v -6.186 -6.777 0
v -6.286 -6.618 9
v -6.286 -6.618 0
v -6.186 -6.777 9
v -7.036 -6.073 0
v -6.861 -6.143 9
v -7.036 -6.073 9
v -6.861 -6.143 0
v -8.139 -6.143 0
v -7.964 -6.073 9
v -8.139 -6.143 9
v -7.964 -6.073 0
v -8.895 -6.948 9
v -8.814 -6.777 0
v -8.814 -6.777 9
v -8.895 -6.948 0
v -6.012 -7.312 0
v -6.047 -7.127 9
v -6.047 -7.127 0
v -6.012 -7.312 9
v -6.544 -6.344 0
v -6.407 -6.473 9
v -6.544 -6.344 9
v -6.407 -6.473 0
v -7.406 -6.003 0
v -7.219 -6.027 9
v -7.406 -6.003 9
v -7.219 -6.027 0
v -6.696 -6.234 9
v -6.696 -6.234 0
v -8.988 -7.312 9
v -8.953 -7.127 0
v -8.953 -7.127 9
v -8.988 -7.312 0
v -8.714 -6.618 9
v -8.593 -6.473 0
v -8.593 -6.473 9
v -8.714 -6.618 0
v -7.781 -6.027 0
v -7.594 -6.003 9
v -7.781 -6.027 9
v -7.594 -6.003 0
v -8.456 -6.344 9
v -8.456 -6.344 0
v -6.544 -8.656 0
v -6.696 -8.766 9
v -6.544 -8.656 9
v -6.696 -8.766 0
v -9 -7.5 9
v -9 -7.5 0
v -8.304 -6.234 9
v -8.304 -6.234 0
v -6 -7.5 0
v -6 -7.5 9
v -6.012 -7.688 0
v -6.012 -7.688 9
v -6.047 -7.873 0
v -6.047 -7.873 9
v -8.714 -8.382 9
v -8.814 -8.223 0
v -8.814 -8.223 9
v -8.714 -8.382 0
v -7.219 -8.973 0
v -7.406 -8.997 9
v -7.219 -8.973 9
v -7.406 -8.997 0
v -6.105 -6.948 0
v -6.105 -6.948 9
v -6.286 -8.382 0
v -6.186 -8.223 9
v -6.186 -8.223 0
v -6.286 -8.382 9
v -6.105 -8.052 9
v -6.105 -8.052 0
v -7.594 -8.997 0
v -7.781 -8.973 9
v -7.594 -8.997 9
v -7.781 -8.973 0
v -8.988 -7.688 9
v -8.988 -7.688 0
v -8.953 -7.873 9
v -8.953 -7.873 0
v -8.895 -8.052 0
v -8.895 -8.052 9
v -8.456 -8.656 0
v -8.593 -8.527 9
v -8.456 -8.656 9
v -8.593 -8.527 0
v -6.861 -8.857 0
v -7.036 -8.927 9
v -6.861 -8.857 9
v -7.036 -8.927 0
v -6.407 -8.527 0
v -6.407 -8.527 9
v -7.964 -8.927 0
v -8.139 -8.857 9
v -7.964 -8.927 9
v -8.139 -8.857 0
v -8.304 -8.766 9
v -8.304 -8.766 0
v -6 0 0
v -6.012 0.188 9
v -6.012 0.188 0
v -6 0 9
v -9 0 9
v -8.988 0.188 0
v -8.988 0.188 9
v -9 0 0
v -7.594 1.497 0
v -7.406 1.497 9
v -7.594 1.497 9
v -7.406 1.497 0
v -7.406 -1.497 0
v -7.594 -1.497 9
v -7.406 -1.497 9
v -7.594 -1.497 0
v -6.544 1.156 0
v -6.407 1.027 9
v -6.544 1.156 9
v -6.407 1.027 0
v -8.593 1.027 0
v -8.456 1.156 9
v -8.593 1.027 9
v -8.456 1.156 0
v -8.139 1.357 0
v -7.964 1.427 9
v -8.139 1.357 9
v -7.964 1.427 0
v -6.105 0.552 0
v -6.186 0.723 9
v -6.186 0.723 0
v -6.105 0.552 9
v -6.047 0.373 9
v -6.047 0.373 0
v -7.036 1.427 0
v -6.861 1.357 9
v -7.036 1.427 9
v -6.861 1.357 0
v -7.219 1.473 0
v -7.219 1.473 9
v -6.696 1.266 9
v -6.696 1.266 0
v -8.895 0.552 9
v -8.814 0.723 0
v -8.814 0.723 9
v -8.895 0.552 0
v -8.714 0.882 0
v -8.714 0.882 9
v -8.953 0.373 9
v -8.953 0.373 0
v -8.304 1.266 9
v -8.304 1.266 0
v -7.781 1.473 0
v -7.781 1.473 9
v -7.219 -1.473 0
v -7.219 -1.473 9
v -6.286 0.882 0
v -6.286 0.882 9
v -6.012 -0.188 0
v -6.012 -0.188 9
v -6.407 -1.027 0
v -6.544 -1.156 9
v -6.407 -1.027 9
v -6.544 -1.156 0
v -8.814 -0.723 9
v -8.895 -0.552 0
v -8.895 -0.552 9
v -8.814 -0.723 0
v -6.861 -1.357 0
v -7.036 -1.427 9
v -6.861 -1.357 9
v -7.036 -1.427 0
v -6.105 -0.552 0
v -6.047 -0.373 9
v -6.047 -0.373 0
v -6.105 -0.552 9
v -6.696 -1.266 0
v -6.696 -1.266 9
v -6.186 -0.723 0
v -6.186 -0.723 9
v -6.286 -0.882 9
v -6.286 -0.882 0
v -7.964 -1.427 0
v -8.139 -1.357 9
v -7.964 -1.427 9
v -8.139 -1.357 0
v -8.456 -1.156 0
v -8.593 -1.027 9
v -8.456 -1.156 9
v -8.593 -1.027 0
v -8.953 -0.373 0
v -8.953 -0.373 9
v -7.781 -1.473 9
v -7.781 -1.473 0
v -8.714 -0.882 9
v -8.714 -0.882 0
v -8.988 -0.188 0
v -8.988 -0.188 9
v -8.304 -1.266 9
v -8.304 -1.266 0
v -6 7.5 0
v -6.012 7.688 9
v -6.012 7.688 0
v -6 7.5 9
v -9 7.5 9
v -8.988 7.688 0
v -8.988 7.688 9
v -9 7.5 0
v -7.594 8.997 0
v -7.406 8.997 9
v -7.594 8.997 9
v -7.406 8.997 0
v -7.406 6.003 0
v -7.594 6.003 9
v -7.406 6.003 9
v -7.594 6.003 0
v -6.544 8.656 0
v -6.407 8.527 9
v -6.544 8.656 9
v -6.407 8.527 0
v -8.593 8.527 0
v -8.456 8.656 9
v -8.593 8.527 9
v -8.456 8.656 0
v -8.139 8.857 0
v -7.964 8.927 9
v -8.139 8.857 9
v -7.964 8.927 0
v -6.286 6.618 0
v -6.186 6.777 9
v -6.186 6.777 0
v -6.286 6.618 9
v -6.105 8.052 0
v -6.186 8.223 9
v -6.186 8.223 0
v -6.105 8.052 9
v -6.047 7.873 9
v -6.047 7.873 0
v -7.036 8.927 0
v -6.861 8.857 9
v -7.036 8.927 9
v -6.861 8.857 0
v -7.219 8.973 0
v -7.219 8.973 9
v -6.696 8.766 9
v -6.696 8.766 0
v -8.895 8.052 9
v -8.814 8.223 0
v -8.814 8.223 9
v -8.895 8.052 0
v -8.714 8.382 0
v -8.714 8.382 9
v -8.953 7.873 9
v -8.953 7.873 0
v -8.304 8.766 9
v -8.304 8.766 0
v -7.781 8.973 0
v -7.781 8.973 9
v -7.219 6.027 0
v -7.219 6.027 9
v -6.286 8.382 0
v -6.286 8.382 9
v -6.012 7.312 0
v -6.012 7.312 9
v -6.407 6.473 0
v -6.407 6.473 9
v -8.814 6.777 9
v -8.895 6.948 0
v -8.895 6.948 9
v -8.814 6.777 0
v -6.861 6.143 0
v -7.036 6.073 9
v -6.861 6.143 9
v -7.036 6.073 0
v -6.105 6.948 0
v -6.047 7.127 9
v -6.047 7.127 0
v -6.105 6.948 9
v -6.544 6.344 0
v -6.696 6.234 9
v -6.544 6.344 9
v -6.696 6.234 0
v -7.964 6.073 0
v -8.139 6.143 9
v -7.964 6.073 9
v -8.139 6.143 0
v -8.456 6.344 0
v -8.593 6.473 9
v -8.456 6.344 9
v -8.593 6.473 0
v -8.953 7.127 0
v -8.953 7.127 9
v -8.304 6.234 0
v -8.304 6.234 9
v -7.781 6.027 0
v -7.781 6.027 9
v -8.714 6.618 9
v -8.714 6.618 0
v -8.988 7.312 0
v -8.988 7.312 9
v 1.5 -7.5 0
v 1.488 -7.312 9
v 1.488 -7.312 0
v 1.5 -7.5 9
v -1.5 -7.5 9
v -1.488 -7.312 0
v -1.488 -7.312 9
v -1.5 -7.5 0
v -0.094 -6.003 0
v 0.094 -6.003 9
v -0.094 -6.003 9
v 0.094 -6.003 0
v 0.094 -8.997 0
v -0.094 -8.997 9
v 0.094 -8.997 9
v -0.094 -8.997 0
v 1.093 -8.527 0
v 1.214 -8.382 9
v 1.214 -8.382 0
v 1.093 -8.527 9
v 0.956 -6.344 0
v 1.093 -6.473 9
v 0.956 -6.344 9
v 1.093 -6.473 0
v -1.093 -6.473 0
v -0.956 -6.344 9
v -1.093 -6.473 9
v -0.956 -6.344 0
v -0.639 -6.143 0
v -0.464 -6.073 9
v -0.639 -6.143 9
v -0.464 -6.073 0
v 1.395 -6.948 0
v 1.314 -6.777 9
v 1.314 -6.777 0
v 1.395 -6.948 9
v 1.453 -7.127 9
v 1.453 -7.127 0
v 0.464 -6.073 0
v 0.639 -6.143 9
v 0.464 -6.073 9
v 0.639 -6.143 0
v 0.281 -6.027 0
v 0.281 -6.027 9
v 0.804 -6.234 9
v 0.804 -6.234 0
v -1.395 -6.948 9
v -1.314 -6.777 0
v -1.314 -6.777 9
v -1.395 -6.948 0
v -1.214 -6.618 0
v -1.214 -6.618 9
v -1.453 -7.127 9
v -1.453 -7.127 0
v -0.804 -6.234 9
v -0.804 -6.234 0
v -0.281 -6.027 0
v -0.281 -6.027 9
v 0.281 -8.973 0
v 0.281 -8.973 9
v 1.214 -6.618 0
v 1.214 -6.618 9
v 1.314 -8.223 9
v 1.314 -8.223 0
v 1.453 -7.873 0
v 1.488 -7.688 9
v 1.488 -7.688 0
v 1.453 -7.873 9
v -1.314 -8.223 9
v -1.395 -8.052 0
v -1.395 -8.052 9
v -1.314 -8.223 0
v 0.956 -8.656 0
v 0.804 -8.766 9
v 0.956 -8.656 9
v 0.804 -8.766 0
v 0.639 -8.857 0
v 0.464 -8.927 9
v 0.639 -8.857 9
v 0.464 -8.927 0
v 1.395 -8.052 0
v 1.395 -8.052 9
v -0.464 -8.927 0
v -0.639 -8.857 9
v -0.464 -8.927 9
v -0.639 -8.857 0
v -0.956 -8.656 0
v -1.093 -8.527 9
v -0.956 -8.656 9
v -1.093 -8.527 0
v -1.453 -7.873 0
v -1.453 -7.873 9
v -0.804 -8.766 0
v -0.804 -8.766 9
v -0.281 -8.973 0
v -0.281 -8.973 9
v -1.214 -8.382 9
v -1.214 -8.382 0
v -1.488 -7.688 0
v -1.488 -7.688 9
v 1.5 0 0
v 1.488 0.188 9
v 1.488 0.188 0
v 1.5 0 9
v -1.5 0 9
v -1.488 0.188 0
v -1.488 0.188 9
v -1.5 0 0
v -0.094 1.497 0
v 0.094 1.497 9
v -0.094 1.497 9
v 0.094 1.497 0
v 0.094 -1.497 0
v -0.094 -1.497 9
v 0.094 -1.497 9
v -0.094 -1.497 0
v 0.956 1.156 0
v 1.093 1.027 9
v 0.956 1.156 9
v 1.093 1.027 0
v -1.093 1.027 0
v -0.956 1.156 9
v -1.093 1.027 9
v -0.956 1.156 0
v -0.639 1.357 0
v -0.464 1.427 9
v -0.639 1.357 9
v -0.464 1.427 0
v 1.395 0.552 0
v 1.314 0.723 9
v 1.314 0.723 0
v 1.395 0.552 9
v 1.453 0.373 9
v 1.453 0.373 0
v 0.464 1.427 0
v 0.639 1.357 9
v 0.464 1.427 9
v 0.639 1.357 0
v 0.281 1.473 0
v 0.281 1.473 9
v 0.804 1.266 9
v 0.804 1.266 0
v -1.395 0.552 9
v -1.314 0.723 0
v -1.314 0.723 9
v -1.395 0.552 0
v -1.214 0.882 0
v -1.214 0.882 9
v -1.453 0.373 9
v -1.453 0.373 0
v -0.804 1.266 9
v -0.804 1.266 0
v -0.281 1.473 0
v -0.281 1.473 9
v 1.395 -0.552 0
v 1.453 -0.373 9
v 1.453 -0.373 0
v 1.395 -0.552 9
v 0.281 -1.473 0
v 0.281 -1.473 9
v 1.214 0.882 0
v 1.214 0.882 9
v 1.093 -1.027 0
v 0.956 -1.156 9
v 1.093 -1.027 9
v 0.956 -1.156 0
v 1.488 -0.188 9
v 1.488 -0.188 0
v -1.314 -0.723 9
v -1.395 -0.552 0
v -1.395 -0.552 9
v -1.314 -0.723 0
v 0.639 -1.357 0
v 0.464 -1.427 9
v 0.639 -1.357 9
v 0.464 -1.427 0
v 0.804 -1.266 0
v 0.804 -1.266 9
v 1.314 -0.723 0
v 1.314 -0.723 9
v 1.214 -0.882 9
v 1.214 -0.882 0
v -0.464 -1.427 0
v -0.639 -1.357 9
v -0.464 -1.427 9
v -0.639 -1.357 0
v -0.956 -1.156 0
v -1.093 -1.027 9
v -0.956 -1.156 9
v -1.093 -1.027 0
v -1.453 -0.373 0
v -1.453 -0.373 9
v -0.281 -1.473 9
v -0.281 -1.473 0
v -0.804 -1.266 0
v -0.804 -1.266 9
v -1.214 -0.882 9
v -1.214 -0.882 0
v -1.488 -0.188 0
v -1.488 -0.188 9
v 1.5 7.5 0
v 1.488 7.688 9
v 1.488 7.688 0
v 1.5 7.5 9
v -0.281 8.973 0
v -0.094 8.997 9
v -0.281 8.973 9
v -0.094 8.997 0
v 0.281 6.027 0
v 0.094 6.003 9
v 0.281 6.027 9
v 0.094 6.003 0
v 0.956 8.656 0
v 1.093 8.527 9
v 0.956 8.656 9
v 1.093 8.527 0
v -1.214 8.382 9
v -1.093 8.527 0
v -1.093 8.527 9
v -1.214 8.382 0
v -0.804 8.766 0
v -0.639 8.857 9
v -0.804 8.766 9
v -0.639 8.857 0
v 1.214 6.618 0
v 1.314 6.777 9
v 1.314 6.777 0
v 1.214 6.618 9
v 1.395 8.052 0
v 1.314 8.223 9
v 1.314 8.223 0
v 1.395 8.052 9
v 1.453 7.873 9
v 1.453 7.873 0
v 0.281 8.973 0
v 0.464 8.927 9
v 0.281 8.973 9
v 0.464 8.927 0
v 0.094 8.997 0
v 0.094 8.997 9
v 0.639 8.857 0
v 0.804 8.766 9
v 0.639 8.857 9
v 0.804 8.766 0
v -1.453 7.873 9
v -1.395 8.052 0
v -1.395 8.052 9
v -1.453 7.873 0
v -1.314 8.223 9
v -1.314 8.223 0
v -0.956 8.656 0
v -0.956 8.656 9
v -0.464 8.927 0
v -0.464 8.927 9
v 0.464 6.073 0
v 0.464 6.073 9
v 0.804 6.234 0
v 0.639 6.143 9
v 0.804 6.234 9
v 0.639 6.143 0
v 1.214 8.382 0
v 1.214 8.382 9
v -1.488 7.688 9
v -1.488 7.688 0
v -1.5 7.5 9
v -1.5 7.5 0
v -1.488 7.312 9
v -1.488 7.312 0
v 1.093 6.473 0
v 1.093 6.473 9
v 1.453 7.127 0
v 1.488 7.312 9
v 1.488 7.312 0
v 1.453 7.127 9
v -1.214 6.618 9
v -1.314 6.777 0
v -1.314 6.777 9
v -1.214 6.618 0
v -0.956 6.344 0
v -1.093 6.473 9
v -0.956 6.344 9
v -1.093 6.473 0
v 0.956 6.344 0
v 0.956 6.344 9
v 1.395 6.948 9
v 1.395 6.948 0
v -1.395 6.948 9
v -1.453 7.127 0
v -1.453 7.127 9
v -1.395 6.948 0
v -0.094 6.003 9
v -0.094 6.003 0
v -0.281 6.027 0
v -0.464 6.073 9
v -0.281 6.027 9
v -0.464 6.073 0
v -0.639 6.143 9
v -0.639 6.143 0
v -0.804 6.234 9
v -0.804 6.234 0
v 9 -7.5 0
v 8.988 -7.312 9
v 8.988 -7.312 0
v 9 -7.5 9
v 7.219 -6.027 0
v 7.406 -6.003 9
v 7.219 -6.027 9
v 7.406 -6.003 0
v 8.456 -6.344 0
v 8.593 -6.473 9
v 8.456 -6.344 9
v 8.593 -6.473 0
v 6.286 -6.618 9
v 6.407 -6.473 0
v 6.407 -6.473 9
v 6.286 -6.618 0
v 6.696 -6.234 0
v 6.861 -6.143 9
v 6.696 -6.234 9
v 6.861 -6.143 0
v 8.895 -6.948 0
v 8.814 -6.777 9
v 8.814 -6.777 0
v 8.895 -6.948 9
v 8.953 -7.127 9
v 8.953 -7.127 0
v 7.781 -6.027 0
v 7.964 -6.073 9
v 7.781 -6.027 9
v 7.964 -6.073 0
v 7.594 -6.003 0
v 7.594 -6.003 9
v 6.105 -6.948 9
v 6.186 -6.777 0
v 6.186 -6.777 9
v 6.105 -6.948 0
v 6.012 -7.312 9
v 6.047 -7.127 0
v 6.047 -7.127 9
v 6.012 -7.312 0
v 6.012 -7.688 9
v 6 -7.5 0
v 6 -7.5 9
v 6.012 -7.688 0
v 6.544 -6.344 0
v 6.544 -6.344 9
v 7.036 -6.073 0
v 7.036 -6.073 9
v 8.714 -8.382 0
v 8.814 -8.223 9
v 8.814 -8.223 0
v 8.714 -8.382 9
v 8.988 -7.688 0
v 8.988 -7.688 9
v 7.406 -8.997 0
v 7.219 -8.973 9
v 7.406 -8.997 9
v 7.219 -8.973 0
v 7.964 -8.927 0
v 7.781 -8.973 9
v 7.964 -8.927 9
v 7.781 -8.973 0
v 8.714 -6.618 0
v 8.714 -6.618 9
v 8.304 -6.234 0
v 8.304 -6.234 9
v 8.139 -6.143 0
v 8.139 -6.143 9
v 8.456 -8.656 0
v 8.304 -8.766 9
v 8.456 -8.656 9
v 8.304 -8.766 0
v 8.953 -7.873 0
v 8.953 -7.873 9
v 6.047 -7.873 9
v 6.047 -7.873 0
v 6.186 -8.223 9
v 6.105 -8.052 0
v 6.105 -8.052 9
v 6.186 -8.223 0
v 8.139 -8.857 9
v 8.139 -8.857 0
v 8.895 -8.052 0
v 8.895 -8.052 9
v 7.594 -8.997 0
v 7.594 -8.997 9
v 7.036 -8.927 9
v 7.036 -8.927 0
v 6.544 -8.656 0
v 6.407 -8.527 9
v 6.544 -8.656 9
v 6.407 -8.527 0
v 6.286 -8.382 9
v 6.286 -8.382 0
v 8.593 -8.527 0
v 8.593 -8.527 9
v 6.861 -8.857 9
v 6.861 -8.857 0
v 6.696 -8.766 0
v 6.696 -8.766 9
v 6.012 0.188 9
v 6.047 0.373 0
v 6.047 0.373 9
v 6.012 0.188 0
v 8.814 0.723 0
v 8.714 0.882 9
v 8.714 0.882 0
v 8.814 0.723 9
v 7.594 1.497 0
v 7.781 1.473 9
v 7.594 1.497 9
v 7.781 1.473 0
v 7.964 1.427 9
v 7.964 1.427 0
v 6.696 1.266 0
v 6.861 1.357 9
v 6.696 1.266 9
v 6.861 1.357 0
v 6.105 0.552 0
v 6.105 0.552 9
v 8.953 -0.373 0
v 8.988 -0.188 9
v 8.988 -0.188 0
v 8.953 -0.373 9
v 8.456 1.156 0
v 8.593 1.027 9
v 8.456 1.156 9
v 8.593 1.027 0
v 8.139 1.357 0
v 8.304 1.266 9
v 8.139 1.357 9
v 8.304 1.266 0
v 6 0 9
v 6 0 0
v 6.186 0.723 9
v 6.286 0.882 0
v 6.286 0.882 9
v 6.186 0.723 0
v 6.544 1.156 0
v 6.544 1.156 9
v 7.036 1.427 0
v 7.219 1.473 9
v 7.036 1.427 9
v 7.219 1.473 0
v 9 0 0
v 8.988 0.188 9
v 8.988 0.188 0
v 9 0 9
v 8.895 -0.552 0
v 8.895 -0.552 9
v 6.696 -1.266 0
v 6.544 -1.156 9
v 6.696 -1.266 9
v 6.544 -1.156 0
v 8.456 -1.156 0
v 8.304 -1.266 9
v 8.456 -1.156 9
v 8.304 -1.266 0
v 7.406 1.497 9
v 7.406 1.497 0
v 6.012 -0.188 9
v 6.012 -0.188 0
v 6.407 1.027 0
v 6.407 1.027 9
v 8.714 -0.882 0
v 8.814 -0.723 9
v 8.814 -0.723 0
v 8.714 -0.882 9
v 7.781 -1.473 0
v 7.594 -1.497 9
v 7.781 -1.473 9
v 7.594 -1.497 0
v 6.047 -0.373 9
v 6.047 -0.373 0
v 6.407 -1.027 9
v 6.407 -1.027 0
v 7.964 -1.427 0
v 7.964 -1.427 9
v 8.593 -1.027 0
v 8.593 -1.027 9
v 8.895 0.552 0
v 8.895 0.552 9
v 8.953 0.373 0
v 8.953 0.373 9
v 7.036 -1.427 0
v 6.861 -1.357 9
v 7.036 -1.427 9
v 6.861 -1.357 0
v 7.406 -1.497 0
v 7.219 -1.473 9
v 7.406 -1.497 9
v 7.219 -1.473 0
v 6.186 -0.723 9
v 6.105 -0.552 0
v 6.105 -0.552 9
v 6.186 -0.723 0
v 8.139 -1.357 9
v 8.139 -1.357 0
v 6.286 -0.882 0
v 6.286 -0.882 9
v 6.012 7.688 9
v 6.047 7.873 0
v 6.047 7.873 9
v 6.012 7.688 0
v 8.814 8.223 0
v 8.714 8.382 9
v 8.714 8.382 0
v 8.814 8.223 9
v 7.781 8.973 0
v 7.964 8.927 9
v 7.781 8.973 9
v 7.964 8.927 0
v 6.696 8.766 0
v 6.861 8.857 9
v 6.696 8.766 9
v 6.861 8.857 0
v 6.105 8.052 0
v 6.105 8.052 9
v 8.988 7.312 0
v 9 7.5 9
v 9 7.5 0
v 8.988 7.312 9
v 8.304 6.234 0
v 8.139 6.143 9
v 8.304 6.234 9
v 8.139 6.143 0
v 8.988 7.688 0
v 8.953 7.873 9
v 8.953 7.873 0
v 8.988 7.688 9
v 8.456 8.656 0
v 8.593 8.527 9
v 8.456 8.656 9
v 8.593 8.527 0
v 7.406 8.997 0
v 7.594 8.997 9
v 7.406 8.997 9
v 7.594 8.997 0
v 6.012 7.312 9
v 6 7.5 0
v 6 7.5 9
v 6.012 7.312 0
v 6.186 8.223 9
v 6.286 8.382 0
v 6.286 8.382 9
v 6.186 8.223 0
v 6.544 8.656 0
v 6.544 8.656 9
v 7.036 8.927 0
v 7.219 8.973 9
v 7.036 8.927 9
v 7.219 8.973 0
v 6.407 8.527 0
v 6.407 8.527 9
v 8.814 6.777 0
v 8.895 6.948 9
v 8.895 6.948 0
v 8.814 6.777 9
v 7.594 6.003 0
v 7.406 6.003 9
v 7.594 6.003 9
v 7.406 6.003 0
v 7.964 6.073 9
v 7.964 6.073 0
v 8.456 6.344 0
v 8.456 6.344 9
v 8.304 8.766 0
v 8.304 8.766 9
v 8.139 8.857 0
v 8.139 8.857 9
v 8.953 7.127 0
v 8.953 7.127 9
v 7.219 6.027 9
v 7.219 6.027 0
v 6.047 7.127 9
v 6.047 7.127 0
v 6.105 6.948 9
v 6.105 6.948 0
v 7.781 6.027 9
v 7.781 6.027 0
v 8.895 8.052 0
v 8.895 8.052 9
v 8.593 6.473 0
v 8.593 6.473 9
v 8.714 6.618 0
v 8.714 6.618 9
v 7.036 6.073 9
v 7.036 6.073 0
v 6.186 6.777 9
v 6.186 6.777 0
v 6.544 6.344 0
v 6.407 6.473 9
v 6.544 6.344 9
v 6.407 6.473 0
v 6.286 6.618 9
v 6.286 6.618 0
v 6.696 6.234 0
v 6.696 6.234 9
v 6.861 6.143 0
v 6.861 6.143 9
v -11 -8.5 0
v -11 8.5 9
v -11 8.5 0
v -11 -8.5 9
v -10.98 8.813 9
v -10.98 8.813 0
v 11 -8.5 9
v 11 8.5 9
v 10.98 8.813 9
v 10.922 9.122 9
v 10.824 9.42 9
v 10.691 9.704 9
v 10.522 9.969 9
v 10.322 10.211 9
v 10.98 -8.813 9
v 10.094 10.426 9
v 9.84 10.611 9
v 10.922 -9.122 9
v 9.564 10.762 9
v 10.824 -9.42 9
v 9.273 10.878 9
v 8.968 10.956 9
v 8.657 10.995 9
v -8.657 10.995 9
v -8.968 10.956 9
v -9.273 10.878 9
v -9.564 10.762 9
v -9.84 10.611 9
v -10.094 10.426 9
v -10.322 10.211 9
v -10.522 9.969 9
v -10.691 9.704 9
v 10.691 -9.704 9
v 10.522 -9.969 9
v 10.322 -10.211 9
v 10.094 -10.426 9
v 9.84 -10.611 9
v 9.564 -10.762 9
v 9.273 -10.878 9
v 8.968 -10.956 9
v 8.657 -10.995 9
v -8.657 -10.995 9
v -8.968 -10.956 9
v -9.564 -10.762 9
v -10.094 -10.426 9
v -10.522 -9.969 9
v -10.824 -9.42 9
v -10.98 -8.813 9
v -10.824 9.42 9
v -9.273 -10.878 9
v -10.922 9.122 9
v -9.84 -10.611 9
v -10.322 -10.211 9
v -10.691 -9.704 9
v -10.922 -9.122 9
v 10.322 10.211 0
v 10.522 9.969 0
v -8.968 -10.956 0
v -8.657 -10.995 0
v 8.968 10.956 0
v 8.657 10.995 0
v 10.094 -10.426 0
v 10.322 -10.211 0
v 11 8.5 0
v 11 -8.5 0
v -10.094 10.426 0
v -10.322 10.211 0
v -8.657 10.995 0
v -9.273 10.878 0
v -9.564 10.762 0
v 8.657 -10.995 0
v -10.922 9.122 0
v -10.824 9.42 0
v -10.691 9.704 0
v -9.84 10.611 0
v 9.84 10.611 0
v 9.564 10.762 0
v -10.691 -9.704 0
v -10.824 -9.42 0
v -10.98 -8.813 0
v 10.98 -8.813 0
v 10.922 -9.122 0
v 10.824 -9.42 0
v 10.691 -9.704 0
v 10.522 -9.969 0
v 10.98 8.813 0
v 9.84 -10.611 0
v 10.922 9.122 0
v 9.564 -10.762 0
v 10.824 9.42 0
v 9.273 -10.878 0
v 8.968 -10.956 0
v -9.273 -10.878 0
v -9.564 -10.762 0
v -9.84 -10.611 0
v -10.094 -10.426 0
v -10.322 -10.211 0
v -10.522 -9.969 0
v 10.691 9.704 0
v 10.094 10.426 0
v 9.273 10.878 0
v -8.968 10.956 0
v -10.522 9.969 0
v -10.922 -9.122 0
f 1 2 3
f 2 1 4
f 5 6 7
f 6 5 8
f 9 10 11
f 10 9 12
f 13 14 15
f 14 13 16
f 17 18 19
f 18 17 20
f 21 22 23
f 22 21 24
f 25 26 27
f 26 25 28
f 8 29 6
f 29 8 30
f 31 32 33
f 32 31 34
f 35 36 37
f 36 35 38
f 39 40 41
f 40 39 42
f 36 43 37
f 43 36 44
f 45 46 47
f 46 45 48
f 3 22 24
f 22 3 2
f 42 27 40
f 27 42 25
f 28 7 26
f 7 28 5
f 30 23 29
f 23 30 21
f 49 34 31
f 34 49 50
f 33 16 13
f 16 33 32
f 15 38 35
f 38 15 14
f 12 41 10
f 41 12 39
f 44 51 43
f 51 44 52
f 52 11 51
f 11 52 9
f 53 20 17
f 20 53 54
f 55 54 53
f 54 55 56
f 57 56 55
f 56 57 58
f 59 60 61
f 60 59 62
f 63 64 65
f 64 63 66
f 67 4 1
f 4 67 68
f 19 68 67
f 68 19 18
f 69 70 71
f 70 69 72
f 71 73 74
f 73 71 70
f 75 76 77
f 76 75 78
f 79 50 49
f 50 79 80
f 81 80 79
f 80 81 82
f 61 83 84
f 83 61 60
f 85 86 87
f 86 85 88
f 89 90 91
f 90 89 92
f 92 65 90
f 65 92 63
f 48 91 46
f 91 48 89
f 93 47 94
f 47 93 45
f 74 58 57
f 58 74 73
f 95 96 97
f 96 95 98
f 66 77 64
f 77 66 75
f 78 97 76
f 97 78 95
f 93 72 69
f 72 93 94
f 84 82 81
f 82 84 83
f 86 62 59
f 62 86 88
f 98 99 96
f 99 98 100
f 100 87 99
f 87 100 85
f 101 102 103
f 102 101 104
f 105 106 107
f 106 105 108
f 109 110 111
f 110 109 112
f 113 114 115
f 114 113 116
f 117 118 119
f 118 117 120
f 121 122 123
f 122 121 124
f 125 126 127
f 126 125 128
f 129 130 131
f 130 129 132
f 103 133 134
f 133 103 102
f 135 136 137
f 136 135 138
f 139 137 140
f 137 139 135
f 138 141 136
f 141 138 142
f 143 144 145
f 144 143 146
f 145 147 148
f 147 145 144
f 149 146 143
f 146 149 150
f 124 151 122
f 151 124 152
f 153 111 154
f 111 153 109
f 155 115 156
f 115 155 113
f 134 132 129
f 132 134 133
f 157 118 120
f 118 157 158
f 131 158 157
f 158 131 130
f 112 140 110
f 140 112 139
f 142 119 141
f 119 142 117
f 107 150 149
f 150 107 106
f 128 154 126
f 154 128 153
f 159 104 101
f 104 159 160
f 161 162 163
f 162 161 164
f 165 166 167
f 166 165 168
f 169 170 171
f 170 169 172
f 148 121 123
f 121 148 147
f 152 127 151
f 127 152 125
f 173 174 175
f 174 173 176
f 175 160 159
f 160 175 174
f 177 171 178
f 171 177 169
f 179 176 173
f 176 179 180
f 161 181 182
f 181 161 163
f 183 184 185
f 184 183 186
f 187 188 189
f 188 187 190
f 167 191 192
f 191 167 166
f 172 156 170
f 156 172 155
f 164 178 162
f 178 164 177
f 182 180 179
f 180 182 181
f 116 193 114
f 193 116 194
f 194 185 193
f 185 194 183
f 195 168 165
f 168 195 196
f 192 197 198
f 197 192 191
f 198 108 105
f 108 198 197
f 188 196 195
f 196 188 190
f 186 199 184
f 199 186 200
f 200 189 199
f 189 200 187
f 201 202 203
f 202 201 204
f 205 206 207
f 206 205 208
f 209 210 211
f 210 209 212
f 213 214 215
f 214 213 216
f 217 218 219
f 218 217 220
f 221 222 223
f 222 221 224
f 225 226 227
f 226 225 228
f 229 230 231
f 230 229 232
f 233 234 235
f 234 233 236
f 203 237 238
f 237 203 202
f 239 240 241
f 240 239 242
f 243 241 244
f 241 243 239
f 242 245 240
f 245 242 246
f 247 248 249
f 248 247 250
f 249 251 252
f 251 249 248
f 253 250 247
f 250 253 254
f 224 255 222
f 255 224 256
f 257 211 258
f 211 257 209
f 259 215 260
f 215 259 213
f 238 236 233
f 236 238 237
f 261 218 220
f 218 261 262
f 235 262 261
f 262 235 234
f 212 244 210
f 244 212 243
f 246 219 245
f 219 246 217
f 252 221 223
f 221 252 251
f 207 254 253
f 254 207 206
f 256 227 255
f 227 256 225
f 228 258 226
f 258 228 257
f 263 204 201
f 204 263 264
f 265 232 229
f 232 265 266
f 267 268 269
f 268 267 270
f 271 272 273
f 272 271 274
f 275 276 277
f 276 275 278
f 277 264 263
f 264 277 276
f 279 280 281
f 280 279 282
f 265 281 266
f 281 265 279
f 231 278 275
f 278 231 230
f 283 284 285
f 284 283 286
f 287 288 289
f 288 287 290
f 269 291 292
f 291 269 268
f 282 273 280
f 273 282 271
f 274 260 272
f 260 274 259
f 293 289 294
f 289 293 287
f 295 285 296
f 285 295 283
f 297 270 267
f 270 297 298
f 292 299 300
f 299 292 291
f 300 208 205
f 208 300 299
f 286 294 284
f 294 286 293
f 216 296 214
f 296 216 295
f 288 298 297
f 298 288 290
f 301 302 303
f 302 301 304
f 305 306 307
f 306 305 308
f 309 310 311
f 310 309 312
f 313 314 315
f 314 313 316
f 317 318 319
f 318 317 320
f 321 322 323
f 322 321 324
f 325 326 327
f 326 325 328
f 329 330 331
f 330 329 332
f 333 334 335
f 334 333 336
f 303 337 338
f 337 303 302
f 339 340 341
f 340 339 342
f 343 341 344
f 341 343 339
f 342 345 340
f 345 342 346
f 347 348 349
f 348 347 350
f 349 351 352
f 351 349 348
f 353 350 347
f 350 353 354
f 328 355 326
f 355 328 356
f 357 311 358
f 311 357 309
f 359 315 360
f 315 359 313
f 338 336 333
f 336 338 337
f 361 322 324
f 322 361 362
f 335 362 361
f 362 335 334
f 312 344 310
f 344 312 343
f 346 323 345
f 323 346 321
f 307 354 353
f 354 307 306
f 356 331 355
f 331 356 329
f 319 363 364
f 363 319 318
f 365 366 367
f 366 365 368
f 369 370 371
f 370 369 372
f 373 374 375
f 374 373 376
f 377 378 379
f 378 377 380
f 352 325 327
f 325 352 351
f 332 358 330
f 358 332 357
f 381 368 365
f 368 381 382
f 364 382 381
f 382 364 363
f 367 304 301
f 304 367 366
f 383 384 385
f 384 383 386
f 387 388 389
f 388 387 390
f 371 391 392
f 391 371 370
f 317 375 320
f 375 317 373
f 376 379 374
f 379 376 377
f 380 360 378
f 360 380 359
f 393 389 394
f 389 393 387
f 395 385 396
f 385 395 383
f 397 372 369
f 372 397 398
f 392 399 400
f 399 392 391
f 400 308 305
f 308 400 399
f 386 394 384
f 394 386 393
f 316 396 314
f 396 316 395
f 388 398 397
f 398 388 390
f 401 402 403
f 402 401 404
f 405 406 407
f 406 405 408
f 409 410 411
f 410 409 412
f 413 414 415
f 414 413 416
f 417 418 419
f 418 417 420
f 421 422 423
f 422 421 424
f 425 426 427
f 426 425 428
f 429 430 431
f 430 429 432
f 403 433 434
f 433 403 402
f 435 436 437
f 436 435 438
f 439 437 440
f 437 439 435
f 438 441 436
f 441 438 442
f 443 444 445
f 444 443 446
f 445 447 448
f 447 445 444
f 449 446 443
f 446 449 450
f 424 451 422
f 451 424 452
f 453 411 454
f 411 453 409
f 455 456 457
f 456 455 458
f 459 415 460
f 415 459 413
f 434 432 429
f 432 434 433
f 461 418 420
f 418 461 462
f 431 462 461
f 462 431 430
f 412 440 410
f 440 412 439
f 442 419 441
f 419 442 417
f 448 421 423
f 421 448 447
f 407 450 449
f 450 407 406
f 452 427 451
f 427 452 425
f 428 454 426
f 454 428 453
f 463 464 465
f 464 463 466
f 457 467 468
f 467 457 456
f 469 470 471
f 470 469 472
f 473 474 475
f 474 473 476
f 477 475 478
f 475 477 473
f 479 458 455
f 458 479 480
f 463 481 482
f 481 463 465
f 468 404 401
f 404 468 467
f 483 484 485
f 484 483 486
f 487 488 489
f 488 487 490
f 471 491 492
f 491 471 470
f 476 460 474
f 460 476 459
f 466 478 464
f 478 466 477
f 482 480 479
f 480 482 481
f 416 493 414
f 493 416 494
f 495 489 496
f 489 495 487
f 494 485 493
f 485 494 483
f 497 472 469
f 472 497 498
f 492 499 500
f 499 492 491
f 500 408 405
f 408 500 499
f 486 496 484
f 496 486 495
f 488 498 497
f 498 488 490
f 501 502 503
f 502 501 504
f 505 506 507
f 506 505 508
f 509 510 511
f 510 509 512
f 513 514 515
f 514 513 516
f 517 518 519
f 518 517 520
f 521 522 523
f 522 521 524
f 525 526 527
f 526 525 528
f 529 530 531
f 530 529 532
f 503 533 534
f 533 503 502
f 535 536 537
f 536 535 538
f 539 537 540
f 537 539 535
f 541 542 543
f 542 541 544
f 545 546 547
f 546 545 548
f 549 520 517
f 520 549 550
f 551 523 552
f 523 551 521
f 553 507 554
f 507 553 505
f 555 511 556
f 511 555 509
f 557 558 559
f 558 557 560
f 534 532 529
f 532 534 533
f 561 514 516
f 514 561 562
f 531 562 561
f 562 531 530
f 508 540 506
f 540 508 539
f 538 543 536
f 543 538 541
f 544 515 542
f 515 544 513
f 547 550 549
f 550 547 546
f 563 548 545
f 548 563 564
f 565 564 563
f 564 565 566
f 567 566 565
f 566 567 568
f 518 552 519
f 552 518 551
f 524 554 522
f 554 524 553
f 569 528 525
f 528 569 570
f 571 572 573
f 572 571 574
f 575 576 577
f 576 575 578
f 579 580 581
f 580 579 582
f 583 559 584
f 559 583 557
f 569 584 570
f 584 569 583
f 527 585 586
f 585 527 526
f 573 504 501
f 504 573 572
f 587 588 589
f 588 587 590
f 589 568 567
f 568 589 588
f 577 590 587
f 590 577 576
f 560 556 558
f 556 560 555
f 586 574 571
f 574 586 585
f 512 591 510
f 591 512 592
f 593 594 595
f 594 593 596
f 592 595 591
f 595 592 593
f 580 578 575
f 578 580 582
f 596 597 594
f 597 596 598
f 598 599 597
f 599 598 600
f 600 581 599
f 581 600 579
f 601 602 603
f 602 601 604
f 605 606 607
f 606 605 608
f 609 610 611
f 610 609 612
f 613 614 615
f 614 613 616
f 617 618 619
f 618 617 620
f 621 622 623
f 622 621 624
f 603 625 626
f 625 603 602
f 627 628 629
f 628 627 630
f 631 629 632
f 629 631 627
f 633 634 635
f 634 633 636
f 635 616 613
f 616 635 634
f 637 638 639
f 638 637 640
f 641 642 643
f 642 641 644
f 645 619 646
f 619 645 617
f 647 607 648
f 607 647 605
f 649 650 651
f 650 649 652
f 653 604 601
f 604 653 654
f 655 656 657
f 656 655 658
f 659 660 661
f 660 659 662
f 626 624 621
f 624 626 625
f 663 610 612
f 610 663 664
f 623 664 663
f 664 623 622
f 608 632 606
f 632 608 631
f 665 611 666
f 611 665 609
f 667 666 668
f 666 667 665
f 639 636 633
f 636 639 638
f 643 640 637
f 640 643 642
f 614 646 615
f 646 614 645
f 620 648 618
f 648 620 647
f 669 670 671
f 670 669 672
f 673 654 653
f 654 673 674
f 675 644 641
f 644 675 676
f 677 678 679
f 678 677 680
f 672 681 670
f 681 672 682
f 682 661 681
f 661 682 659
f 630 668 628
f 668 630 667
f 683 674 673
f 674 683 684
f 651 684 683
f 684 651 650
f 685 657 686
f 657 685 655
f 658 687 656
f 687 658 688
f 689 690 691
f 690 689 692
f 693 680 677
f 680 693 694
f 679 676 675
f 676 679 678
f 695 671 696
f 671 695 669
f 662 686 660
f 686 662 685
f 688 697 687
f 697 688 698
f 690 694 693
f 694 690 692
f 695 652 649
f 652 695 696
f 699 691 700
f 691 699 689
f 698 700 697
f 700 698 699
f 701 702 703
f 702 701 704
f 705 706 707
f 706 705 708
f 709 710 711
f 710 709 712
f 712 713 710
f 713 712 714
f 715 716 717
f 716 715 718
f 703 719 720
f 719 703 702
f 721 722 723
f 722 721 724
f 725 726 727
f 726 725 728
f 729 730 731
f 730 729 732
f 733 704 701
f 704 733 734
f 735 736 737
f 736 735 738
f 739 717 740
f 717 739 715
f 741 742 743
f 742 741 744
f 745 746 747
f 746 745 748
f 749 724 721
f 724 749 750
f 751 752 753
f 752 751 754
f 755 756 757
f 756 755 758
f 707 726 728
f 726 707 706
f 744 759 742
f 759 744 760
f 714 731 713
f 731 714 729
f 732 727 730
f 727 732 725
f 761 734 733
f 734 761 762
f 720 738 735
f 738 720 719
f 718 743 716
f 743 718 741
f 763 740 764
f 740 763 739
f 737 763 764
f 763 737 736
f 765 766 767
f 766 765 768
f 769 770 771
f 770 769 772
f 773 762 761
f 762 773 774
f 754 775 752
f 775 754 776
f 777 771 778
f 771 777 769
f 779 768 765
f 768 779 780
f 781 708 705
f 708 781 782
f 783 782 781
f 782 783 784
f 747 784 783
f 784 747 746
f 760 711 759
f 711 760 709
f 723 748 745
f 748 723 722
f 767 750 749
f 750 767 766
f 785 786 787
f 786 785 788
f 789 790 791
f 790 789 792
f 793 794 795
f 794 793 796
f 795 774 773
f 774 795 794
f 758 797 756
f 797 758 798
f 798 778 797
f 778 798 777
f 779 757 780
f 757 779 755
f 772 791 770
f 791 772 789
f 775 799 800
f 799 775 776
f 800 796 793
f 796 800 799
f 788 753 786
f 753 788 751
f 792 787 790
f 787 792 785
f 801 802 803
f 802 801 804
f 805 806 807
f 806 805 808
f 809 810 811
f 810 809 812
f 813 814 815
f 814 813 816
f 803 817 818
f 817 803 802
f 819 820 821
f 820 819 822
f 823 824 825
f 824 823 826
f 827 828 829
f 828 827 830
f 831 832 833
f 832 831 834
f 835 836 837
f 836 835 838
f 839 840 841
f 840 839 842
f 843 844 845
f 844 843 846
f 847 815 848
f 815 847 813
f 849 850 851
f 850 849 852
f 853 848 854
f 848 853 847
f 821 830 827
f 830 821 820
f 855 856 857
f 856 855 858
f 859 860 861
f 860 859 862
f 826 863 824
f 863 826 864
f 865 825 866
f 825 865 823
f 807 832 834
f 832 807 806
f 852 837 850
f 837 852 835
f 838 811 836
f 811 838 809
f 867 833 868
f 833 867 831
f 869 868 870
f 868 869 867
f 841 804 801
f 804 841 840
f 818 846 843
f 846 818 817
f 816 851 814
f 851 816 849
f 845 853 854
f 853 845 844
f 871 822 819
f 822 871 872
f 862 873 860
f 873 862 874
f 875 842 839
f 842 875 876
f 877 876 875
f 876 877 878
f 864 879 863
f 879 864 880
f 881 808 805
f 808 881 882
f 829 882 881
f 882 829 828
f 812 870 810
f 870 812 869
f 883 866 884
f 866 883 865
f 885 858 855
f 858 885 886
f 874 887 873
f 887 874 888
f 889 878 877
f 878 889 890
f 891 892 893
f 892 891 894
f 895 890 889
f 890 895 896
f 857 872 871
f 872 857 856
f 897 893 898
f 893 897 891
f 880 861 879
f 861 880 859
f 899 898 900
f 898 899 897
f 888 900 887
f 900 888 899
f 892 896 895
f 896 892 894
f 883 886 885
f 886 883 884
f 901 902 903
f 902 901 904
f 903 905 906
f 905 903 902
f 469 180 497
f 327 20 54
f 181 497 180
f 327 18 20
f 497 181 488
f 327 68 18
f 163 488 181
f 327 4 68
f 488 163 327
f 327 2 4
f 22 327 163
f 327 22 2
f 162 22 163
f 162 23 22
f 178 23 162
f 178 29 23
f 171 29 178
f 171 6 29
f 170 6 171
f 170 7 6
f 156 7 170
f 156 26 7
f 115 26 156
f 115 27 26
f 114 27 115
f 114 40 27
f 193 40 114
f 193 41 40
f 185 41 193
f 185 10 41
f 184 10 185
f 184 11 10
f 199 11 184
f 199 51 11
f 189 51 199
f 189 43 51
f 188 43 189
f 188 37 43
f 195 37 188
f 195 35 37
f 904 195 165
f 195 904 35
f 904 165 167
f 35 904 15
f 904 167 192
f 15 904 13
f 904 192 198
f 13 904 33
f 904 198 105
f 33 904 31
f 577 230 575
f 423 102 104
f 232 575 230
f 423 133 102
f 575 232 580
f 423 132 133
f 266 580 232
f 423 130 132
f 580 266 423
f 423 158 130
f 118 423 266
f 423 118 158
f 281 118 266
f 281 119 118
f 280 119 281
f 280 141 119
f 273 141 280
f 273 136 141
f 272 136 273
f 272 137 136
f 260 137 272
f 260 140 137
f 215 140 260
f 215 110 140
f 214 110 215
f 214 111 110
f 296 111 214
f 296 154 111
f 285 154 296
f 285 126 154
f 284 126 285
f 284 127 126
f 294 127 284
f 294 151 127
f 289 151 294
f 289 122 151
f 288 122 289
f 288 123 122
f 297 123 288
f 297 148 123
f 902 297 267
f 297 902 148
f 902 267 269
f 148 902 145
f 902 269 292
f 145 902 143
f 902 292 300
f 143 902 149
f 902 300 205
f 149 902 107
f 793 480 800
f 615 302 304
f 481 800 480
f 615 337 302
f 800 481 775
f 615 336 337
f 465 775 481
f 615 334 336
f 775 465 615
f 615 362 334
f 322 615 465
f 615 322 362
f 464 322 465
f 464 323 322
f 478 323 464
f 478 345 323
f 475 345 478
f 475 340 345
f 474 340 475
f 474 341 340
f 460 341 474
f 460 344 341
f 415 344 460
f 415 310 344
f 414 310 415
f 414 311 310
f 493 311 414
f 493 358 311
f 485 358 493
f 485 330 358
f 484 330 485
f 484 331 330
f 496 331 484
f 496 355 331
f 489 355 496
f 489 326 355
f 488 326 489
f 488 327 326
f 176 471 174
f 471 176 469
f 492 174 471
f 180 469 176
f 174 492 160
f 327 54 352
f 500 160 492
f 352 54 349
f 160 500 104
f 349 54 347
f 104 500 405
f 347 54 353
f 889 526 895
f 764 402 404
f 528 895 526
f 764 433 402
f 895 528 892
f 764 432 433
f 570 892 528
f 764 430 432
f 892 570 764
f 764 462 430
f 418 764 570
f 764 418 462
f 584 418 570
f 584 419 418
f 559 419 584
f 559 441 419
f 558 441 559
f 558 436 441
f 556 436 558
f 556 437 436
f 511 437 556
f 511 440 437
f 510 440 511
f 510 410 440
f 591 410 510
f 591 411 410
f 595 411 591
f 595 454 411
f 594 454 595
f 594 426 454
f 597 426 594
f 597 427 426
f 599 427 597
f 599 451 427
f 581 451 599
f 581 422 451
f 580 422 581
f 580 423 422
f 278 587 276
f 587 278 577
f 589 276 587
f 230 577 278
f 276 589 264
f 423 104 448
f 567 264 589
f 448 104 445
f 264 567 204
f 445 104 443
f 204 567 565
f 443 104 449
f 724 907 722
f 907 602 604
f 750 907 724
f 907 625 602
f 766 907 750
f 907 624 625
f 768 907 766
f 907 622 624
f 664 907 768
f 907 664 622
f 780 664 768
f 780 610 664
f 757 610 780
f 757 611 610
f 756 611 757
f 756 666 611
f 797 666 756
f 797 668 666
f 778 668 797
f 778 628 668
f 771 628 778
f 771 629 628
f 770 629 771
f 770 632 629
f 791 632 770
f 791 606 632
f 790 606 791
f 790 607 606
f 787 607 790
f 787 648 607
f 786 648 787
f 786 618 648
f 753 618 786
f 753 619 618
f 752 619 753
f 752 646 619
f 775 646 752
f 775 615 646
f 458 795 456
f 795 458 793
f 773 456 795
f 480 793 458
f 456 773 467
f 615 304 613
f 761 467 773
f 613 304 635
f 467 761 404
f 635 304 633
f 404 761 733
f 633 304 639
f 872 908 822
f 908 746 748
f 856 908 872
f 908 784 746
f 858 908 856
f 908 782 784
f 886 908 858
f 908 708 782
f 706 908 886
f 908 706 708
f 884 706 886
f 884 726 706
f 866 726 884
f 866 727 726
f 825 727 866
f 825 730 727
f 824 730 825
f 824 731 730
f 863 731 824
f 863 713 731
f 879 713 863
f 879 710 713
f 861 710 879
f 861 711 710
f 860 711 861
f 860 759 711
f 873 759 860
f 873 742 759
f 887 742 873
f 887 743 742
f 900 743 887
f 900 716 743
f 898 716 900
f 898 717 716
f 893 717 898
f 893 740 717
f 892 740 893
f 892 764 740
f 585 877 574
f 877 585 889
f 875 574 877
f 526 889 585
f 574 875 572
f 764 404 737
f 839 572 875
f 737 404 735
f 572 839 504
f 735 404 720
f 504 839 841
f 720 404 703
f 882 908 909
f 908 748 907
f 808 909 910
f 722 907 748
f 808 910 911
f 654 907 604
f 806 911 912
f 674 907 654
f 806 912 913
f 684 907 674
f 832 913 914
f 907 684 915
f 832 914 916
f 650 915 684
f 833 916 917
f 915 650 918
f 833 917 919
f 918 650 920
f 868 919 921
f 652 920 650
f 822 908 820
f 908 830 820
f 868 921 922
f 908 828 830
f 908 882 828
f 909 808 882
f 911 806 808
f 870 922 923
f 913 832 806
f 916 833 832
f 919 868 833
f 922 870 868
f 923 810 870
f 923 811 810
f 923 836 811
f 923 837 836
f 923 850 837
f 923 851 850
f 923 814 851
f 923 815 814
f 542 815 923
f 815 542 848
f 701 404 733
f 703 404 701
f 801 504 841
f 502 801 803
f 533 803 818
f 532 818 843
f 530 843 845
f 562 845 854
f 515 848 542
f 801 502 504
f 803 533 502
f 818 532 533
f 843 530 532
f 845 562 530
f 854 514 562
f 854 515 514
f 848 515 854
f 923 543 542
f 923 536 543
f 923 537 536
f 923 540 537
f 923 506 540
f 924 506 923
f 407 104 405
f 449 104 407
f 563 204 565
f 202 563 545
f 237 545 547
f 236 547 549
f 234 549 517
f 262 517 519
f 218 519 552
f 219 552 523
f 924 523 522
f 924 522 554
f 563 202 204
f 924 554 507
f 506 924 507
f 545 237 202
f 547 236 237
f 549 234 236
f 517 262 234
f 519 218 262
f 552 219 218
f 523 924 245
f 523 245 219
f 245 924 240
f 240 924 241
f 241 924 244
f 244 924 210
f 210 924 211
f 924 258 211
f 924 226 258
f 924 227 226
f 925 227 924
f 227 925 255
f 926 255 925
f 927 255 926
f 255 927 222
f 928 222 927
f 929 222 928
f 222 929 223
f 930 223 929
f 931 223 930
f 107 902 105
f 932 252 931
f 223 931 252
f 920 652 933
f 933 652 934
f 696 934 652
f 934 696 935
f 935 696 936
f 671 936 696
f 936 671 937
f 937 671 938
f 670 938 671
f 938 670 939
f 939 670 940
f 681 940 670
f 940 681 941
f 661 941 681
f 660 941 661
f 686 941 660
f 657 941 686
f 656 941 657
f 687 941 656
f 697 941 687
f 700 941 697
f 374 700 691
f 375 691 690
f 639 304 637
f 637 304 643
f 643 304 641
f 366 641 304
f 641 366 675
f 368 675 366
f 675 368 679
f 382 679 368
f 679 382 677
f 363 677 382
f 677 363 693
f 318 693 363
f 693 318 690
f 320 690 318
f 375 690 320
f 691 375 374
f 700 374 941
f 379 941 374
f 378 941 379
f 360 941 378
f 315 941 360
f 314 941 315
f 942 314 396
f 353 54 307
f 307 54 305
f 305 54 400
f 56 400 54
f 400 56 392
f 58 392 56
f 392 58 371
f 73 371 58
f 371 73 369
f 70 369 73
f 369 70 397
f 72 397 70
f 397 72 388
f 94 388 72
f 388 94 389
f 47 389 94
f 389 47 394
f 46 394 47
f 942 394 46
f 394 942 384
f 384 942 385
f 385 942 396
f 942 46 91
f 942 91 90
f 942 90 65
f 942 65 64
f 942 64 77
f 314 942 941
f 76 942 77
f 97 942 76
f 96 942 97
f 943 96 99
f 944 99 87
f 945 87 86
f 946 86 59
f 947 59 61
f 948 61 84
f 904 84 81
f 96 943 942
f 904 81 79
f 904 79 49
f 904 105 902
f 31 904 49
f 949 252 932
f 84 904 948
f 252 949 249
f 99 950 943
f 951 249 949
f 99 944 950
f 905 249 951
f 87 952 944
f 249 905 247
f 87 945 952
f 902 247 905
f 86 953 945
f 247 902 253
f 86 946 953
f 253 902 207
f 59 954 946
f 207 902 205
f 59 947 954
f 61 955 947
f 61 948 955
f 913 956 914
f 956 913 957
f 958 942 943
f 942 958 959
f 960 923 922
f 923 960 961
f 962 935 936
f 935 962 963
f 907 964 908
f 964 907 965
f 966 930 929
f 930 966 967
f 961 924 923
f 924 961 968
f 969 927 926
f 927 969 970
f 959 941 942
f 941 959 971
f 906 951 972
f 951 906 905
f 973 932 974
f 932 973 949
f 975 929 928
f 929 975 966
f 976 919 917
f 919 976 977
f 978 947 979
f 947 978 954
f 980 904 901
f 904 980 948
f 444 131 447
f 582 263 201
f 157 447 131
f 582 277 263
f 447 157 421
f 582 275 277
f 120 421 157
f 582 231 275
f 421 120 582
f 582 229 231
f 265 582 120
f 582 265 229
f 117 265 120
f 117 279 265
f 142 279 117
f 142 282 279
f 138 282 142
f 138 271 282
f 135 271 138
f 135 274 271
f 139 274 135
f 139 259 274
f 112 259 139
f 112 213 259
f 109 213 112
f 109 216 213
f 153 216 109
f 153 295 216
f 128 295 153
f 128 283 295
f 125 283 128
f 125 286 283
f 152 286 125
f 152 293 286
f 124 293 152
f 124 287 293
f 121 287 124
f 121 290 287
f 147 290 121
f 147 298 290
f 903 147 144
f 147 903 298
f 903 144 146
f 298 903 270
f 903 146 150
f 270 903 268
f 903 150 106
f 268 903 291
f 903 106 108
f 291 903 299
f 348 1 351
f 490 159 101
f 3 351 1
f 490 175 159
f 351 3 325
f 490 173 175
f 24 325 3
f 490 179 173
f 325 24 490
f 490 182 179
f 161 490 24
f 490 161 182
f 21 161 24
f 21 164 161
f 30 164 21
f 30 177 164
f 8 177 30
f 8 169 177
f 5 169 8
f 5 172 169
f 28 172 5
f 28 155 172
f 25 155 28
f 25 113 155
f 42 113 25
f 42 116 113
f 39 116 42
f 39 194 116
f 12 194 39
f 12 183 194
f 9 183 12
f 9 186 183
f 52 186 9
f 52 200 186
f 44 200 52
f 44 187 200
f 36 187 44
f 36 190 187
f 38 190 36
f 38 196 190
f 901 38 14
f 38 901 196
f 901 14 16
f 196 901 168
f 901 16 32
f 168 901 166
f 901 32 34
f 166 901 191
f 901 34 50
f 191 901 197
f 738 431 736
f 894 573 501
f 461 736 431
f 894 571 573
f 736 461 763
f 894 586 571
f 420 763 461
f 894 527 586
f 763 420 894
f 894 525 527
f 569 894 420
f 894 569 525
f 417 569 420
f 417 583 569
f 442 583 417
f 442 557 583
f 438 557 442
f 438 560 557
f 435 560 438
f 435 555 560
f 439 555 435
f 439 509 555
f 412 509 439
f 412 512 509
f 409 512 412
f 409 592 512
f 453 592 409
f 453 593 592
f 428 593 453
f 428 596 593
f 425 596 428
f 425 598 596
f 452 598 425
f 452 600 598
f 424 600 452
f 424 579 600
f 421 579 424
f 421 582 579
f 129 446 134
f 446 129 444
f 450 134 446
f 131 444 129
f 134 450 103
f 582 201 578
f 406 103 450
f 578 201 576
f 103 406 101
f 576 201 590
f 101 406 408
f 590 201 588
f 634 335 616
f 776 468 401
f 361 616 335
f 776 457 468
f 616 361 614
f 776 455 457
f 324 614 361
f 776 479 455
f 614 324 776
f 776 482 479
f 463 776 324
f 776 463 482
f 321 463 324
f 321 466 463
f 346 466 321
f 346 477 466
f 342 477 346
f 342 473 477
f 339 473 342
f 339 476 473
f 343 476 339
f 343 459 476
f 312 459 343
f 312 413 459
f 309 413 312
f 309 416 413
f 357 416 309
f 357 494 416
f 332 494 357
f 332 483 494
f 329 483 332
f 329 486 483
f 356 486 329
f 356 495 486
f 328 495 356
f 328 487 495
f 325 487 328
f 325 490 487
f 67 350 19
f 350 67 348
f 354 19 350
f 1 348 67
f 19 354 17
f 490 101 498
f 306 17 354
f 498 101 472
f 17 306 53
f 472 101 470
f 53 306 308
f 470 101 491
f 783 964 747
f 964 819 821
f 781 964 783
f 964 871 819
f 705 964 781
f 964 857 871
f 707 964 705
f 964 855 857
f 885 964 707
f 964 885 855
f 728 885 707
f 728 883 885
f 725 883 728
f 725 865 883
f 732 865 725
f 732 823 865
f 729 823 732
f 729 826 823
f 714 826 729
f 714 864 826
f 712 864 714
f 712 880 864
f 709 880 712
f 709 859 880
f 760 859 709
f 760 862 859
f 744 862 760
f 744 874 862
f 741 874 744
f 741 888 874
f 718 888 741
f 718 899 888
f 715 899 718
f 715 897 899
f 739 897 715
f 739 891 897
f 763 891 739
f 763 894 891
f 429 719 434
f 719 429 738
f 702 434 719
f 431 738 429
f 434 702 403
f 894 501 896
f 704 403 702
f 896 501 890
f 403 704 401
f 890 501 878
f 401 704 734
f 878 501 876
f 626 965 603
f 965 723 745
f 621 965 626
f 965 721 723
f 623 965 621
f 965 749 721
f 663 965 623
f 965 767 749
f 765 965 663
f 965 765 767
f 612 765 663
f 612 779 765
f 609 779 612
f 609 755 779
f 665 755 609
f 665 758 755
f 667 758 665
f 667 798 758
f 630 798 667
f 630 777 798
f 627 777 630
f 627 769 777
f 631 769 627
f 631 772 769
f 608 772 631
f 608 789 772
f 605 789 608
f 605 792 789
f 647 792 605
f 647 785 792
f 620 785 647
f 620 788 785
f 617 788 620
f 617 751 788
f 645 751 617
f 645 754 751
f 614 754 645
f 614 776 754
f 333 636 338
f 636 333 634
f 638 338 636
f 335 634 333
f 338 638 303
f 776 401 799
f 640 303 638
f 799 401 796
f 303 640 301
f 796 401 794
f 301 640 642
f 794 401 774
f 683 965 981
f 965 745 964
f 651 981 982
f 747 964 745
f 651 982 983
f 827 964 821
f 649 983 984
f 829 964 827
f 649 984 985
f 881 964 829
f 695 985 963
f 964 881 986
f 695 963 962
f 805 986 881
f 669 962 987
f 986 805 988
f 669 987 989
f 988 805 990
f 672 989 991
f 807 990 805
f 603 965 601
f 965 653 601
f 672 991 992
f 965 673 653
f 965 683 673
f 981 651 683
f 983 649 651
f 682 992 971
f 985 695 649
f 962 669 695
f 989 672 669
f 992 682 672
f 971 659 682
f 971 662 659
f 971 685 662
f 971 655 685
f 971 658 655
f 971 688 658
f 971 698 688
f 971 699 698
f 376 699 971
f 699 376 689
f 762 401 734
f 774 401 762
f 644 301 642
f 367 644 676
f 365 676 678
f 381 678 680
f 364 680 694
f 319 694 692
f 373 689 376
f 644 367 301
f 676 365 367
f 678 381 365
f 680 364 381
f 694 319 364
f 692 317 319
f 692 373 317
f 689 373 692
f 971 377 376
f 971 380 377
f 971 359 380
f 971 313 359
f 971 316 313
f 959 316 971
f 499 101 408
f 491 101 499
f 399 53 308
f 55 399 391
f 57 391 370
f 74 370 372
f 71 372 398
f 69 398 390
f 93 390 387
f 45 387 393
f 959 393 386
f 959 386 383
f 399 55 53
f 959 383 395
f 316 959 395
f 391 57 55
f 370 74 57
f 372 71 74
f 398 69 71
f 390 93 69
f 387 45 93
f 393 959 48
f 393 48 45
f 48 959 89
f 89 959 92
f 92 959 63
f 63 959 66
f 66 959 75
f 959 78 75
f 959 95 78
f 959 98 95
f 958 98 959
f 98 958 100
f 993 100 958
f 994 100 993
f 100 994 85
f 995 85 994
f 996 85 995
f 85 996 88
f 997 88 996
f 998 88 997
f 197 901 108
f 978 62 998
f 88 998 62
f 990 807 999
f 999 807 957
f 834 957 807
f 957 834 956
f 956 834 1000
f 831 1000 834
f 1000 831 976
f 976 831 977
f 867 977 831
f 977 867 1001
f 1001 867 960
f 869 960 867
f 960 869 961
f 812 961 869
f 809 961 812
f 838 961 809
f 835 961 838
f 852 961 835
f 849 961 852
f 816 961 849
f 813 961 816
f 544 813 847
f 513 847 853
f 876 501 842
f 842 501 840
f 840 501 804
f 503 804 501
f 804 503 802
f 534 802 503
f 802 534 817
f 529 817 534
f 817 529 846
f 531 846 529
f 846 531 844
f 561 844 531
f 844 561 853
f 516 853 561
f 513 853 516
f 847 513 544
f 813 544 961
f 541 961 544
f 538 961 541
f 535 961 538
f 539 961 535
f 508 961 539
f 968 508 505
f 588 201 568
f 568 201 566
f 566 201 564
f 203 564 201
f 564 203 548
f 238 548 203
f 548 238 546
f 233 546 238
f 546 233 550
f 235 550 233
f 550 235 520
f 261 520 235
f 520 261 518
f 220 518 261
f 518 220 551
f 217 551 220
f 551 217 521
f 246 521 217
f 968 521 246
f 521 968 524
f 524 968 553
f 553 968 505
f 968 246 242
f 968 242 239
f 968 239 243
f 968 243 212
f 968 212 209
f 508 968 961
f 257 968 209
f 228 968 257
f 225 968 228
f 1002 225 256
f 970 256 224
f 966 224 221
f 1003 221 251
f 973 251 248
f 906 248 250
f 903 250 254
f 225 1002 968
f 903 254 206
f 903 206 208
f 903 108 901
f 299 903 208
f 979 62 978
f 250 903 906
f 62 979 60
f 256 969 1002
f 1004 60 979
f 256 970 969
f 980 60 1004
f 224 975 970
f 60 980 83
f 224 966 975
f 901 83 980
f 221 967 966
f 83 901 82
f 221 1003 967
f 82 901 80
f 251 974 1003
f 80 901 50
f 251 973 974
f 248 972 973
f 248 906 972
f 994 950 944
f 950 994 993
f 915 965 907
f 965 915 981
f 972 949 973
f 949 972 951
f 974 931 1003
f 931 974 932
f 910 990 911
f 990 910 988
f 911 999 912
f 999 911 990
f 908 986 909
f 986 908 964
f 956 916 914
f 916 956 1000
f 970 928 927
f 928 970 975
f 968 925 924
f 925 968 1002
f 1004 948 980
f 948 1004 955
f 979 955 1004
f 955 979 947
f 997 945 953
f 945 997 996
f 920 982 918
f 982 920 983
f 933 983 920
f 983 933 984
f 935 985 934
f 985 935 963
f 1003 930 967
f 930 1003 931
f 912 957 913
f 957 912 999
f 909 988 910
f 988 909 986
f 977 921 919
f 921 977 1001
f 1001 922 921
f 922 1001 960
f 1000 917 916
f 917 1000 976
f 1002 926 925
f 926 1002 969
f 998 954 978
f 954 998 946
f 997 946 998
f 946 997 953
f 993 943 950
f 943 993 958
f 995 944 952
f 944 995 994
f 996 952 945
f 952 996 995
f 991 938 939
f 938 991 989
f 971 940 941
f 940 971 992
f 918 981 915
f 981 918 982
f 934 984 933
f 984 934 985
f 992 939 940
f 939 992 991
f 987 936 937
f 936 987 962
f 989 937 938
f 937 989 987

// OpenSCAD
$fn = 50;


difference() {
	union() {
		translate(v = [0, 0, 0]) {
			rotate(a = [0, 0, 0]) {
				hull() {
					translate(v = [-8.5000000000, 8.5000000000, 0]) {
						rotate(a = [0, 0, 0]) {
							translate(v = [0, 0, 0]) {
								rotate(a = [0, 0, 0]) {
									cylinder(h = 9, r = 2.5000000000);
								}
							}
						}
					}
					translate(v = [8.5000000000, 8.5000000000, 0]) {
						rotate(a = [0, 0, 0]) {
							translate(v = [0, 0, 0]) {
								rotate(a = [0, 0, 0]) {
									cylinder(h = 9, r = 2.5000000000);
								}
							}
						}
					}
					translate(v = [-8.5000000000, -8.5000000000, 0]) {
						rotate(a = [0, 0, 0]) {
							translate(v = [0, 0, 0]) {
								rotate(a = [0, 0, 0]) {
									cylinder(h = 9, r = 2.5000000000);
								}
							}
						}
					}
					translate(v = [8.5000000000, -8.5000000000, 0]) {
						rotate(a = [0, 0, 0]) {
							translate(v = [0, 0, 0]) {
								rotate(a = [0, 0, 0]) {
									cylinder(h = 9, r = 2.5000000000);
								}
							}
						}
					}
				}
			}
		}
	}
	union() {
		translate(v = [-7.5000000000, -7.5000000000, 0]) {
			rotate(a = [0, 0, 0]) {
				translate(v = [0, 0, -50]) {
					rotate(a = [0, 0, 0]) {
						cylinder(h = 100, r = 1.5000000000);
					}
				}
			}
		}
		translate(v = [-7.5000000000, 0.0000000000, 0]) {
			rotate(a = [0, 0, 0]) {
				translate(v = [0, 0, -50]) {
					rotate(a = [0, 0, 0]) {
						cylinder(h = 100, r = 1.5000000000);
					}
				}
			}
		}
		translate(v = [-7.5000000000, 7.5000000000, 0]) {
			rotate(a = [0, 0, 0]) {
				translate(v = [0, 0, -50]) {
					rotate(a = [0, 0, 0]) {
						cylinder(h = 100, r = 1.5000000000);
					}
				}
			}
		}
		translate(v = [0.0000000000, -7.5000000000, 0]) {
			rotate(a = [0, 0, 0]) {
				translate(v = [0, 0, -50]) {
					rotate(a = [0, 0, 0]) {
						cylinder(h = 100, r = 1.5000000000);
					}
				}
			}
		}
		translate(v = [0.0000000000, 0.0000000000, 0]) {
			rotate(a = [0, 0, 0]) {
				translate(v = [0, 0, -50]) {
					rotate(a = [0, 0, 0]) {
						cylinder(h = 100, r = 1.5000000000);
					}
				}
			}
		}
		translate(v = [0.0000000000, 7.5000000000, 0]) {
			rotate(a = [0, 0, 0]) {
				translate(v = [0, 0, -50]) {
					rotate(a = [0, 0, 0]) {
						cylinder(h = 100, r = 1.5000000000);
					}
				}
			}
		}
		translate(v = [7.5000000000, -7.5000000000, 0]) {
			rotate(a = [0, 0, 0]) {
				translate(v = [0, 0, -50]) {
					rotate(a = [0, 0, 0]) {
						cylinder(h = 100, r = 1.5000000000);
					}
				}
			}
		}
		translate(v = [7.5000000000, 0.0000000000, 0]) {
			rotate(a = [0, 0, 0]) {
				translate(v = [0, 0, -50]) {
					rotate(a = [0, 0, 0]) {
						cylinder(h = 100, r = 1.5000000000);
					}
				}
			}
		}
		translate(v = [7.5000000000, 7.5000000000, 0]) {
			rotate(a = [0, 0, 0]) {
				translate(v = [0, 0, -50]) {
					rotate(a = [0, 0, 0]) {
						cylinder(h = 100, r = 1.5000000000);
					}
				}
			}
		}
	}
}
